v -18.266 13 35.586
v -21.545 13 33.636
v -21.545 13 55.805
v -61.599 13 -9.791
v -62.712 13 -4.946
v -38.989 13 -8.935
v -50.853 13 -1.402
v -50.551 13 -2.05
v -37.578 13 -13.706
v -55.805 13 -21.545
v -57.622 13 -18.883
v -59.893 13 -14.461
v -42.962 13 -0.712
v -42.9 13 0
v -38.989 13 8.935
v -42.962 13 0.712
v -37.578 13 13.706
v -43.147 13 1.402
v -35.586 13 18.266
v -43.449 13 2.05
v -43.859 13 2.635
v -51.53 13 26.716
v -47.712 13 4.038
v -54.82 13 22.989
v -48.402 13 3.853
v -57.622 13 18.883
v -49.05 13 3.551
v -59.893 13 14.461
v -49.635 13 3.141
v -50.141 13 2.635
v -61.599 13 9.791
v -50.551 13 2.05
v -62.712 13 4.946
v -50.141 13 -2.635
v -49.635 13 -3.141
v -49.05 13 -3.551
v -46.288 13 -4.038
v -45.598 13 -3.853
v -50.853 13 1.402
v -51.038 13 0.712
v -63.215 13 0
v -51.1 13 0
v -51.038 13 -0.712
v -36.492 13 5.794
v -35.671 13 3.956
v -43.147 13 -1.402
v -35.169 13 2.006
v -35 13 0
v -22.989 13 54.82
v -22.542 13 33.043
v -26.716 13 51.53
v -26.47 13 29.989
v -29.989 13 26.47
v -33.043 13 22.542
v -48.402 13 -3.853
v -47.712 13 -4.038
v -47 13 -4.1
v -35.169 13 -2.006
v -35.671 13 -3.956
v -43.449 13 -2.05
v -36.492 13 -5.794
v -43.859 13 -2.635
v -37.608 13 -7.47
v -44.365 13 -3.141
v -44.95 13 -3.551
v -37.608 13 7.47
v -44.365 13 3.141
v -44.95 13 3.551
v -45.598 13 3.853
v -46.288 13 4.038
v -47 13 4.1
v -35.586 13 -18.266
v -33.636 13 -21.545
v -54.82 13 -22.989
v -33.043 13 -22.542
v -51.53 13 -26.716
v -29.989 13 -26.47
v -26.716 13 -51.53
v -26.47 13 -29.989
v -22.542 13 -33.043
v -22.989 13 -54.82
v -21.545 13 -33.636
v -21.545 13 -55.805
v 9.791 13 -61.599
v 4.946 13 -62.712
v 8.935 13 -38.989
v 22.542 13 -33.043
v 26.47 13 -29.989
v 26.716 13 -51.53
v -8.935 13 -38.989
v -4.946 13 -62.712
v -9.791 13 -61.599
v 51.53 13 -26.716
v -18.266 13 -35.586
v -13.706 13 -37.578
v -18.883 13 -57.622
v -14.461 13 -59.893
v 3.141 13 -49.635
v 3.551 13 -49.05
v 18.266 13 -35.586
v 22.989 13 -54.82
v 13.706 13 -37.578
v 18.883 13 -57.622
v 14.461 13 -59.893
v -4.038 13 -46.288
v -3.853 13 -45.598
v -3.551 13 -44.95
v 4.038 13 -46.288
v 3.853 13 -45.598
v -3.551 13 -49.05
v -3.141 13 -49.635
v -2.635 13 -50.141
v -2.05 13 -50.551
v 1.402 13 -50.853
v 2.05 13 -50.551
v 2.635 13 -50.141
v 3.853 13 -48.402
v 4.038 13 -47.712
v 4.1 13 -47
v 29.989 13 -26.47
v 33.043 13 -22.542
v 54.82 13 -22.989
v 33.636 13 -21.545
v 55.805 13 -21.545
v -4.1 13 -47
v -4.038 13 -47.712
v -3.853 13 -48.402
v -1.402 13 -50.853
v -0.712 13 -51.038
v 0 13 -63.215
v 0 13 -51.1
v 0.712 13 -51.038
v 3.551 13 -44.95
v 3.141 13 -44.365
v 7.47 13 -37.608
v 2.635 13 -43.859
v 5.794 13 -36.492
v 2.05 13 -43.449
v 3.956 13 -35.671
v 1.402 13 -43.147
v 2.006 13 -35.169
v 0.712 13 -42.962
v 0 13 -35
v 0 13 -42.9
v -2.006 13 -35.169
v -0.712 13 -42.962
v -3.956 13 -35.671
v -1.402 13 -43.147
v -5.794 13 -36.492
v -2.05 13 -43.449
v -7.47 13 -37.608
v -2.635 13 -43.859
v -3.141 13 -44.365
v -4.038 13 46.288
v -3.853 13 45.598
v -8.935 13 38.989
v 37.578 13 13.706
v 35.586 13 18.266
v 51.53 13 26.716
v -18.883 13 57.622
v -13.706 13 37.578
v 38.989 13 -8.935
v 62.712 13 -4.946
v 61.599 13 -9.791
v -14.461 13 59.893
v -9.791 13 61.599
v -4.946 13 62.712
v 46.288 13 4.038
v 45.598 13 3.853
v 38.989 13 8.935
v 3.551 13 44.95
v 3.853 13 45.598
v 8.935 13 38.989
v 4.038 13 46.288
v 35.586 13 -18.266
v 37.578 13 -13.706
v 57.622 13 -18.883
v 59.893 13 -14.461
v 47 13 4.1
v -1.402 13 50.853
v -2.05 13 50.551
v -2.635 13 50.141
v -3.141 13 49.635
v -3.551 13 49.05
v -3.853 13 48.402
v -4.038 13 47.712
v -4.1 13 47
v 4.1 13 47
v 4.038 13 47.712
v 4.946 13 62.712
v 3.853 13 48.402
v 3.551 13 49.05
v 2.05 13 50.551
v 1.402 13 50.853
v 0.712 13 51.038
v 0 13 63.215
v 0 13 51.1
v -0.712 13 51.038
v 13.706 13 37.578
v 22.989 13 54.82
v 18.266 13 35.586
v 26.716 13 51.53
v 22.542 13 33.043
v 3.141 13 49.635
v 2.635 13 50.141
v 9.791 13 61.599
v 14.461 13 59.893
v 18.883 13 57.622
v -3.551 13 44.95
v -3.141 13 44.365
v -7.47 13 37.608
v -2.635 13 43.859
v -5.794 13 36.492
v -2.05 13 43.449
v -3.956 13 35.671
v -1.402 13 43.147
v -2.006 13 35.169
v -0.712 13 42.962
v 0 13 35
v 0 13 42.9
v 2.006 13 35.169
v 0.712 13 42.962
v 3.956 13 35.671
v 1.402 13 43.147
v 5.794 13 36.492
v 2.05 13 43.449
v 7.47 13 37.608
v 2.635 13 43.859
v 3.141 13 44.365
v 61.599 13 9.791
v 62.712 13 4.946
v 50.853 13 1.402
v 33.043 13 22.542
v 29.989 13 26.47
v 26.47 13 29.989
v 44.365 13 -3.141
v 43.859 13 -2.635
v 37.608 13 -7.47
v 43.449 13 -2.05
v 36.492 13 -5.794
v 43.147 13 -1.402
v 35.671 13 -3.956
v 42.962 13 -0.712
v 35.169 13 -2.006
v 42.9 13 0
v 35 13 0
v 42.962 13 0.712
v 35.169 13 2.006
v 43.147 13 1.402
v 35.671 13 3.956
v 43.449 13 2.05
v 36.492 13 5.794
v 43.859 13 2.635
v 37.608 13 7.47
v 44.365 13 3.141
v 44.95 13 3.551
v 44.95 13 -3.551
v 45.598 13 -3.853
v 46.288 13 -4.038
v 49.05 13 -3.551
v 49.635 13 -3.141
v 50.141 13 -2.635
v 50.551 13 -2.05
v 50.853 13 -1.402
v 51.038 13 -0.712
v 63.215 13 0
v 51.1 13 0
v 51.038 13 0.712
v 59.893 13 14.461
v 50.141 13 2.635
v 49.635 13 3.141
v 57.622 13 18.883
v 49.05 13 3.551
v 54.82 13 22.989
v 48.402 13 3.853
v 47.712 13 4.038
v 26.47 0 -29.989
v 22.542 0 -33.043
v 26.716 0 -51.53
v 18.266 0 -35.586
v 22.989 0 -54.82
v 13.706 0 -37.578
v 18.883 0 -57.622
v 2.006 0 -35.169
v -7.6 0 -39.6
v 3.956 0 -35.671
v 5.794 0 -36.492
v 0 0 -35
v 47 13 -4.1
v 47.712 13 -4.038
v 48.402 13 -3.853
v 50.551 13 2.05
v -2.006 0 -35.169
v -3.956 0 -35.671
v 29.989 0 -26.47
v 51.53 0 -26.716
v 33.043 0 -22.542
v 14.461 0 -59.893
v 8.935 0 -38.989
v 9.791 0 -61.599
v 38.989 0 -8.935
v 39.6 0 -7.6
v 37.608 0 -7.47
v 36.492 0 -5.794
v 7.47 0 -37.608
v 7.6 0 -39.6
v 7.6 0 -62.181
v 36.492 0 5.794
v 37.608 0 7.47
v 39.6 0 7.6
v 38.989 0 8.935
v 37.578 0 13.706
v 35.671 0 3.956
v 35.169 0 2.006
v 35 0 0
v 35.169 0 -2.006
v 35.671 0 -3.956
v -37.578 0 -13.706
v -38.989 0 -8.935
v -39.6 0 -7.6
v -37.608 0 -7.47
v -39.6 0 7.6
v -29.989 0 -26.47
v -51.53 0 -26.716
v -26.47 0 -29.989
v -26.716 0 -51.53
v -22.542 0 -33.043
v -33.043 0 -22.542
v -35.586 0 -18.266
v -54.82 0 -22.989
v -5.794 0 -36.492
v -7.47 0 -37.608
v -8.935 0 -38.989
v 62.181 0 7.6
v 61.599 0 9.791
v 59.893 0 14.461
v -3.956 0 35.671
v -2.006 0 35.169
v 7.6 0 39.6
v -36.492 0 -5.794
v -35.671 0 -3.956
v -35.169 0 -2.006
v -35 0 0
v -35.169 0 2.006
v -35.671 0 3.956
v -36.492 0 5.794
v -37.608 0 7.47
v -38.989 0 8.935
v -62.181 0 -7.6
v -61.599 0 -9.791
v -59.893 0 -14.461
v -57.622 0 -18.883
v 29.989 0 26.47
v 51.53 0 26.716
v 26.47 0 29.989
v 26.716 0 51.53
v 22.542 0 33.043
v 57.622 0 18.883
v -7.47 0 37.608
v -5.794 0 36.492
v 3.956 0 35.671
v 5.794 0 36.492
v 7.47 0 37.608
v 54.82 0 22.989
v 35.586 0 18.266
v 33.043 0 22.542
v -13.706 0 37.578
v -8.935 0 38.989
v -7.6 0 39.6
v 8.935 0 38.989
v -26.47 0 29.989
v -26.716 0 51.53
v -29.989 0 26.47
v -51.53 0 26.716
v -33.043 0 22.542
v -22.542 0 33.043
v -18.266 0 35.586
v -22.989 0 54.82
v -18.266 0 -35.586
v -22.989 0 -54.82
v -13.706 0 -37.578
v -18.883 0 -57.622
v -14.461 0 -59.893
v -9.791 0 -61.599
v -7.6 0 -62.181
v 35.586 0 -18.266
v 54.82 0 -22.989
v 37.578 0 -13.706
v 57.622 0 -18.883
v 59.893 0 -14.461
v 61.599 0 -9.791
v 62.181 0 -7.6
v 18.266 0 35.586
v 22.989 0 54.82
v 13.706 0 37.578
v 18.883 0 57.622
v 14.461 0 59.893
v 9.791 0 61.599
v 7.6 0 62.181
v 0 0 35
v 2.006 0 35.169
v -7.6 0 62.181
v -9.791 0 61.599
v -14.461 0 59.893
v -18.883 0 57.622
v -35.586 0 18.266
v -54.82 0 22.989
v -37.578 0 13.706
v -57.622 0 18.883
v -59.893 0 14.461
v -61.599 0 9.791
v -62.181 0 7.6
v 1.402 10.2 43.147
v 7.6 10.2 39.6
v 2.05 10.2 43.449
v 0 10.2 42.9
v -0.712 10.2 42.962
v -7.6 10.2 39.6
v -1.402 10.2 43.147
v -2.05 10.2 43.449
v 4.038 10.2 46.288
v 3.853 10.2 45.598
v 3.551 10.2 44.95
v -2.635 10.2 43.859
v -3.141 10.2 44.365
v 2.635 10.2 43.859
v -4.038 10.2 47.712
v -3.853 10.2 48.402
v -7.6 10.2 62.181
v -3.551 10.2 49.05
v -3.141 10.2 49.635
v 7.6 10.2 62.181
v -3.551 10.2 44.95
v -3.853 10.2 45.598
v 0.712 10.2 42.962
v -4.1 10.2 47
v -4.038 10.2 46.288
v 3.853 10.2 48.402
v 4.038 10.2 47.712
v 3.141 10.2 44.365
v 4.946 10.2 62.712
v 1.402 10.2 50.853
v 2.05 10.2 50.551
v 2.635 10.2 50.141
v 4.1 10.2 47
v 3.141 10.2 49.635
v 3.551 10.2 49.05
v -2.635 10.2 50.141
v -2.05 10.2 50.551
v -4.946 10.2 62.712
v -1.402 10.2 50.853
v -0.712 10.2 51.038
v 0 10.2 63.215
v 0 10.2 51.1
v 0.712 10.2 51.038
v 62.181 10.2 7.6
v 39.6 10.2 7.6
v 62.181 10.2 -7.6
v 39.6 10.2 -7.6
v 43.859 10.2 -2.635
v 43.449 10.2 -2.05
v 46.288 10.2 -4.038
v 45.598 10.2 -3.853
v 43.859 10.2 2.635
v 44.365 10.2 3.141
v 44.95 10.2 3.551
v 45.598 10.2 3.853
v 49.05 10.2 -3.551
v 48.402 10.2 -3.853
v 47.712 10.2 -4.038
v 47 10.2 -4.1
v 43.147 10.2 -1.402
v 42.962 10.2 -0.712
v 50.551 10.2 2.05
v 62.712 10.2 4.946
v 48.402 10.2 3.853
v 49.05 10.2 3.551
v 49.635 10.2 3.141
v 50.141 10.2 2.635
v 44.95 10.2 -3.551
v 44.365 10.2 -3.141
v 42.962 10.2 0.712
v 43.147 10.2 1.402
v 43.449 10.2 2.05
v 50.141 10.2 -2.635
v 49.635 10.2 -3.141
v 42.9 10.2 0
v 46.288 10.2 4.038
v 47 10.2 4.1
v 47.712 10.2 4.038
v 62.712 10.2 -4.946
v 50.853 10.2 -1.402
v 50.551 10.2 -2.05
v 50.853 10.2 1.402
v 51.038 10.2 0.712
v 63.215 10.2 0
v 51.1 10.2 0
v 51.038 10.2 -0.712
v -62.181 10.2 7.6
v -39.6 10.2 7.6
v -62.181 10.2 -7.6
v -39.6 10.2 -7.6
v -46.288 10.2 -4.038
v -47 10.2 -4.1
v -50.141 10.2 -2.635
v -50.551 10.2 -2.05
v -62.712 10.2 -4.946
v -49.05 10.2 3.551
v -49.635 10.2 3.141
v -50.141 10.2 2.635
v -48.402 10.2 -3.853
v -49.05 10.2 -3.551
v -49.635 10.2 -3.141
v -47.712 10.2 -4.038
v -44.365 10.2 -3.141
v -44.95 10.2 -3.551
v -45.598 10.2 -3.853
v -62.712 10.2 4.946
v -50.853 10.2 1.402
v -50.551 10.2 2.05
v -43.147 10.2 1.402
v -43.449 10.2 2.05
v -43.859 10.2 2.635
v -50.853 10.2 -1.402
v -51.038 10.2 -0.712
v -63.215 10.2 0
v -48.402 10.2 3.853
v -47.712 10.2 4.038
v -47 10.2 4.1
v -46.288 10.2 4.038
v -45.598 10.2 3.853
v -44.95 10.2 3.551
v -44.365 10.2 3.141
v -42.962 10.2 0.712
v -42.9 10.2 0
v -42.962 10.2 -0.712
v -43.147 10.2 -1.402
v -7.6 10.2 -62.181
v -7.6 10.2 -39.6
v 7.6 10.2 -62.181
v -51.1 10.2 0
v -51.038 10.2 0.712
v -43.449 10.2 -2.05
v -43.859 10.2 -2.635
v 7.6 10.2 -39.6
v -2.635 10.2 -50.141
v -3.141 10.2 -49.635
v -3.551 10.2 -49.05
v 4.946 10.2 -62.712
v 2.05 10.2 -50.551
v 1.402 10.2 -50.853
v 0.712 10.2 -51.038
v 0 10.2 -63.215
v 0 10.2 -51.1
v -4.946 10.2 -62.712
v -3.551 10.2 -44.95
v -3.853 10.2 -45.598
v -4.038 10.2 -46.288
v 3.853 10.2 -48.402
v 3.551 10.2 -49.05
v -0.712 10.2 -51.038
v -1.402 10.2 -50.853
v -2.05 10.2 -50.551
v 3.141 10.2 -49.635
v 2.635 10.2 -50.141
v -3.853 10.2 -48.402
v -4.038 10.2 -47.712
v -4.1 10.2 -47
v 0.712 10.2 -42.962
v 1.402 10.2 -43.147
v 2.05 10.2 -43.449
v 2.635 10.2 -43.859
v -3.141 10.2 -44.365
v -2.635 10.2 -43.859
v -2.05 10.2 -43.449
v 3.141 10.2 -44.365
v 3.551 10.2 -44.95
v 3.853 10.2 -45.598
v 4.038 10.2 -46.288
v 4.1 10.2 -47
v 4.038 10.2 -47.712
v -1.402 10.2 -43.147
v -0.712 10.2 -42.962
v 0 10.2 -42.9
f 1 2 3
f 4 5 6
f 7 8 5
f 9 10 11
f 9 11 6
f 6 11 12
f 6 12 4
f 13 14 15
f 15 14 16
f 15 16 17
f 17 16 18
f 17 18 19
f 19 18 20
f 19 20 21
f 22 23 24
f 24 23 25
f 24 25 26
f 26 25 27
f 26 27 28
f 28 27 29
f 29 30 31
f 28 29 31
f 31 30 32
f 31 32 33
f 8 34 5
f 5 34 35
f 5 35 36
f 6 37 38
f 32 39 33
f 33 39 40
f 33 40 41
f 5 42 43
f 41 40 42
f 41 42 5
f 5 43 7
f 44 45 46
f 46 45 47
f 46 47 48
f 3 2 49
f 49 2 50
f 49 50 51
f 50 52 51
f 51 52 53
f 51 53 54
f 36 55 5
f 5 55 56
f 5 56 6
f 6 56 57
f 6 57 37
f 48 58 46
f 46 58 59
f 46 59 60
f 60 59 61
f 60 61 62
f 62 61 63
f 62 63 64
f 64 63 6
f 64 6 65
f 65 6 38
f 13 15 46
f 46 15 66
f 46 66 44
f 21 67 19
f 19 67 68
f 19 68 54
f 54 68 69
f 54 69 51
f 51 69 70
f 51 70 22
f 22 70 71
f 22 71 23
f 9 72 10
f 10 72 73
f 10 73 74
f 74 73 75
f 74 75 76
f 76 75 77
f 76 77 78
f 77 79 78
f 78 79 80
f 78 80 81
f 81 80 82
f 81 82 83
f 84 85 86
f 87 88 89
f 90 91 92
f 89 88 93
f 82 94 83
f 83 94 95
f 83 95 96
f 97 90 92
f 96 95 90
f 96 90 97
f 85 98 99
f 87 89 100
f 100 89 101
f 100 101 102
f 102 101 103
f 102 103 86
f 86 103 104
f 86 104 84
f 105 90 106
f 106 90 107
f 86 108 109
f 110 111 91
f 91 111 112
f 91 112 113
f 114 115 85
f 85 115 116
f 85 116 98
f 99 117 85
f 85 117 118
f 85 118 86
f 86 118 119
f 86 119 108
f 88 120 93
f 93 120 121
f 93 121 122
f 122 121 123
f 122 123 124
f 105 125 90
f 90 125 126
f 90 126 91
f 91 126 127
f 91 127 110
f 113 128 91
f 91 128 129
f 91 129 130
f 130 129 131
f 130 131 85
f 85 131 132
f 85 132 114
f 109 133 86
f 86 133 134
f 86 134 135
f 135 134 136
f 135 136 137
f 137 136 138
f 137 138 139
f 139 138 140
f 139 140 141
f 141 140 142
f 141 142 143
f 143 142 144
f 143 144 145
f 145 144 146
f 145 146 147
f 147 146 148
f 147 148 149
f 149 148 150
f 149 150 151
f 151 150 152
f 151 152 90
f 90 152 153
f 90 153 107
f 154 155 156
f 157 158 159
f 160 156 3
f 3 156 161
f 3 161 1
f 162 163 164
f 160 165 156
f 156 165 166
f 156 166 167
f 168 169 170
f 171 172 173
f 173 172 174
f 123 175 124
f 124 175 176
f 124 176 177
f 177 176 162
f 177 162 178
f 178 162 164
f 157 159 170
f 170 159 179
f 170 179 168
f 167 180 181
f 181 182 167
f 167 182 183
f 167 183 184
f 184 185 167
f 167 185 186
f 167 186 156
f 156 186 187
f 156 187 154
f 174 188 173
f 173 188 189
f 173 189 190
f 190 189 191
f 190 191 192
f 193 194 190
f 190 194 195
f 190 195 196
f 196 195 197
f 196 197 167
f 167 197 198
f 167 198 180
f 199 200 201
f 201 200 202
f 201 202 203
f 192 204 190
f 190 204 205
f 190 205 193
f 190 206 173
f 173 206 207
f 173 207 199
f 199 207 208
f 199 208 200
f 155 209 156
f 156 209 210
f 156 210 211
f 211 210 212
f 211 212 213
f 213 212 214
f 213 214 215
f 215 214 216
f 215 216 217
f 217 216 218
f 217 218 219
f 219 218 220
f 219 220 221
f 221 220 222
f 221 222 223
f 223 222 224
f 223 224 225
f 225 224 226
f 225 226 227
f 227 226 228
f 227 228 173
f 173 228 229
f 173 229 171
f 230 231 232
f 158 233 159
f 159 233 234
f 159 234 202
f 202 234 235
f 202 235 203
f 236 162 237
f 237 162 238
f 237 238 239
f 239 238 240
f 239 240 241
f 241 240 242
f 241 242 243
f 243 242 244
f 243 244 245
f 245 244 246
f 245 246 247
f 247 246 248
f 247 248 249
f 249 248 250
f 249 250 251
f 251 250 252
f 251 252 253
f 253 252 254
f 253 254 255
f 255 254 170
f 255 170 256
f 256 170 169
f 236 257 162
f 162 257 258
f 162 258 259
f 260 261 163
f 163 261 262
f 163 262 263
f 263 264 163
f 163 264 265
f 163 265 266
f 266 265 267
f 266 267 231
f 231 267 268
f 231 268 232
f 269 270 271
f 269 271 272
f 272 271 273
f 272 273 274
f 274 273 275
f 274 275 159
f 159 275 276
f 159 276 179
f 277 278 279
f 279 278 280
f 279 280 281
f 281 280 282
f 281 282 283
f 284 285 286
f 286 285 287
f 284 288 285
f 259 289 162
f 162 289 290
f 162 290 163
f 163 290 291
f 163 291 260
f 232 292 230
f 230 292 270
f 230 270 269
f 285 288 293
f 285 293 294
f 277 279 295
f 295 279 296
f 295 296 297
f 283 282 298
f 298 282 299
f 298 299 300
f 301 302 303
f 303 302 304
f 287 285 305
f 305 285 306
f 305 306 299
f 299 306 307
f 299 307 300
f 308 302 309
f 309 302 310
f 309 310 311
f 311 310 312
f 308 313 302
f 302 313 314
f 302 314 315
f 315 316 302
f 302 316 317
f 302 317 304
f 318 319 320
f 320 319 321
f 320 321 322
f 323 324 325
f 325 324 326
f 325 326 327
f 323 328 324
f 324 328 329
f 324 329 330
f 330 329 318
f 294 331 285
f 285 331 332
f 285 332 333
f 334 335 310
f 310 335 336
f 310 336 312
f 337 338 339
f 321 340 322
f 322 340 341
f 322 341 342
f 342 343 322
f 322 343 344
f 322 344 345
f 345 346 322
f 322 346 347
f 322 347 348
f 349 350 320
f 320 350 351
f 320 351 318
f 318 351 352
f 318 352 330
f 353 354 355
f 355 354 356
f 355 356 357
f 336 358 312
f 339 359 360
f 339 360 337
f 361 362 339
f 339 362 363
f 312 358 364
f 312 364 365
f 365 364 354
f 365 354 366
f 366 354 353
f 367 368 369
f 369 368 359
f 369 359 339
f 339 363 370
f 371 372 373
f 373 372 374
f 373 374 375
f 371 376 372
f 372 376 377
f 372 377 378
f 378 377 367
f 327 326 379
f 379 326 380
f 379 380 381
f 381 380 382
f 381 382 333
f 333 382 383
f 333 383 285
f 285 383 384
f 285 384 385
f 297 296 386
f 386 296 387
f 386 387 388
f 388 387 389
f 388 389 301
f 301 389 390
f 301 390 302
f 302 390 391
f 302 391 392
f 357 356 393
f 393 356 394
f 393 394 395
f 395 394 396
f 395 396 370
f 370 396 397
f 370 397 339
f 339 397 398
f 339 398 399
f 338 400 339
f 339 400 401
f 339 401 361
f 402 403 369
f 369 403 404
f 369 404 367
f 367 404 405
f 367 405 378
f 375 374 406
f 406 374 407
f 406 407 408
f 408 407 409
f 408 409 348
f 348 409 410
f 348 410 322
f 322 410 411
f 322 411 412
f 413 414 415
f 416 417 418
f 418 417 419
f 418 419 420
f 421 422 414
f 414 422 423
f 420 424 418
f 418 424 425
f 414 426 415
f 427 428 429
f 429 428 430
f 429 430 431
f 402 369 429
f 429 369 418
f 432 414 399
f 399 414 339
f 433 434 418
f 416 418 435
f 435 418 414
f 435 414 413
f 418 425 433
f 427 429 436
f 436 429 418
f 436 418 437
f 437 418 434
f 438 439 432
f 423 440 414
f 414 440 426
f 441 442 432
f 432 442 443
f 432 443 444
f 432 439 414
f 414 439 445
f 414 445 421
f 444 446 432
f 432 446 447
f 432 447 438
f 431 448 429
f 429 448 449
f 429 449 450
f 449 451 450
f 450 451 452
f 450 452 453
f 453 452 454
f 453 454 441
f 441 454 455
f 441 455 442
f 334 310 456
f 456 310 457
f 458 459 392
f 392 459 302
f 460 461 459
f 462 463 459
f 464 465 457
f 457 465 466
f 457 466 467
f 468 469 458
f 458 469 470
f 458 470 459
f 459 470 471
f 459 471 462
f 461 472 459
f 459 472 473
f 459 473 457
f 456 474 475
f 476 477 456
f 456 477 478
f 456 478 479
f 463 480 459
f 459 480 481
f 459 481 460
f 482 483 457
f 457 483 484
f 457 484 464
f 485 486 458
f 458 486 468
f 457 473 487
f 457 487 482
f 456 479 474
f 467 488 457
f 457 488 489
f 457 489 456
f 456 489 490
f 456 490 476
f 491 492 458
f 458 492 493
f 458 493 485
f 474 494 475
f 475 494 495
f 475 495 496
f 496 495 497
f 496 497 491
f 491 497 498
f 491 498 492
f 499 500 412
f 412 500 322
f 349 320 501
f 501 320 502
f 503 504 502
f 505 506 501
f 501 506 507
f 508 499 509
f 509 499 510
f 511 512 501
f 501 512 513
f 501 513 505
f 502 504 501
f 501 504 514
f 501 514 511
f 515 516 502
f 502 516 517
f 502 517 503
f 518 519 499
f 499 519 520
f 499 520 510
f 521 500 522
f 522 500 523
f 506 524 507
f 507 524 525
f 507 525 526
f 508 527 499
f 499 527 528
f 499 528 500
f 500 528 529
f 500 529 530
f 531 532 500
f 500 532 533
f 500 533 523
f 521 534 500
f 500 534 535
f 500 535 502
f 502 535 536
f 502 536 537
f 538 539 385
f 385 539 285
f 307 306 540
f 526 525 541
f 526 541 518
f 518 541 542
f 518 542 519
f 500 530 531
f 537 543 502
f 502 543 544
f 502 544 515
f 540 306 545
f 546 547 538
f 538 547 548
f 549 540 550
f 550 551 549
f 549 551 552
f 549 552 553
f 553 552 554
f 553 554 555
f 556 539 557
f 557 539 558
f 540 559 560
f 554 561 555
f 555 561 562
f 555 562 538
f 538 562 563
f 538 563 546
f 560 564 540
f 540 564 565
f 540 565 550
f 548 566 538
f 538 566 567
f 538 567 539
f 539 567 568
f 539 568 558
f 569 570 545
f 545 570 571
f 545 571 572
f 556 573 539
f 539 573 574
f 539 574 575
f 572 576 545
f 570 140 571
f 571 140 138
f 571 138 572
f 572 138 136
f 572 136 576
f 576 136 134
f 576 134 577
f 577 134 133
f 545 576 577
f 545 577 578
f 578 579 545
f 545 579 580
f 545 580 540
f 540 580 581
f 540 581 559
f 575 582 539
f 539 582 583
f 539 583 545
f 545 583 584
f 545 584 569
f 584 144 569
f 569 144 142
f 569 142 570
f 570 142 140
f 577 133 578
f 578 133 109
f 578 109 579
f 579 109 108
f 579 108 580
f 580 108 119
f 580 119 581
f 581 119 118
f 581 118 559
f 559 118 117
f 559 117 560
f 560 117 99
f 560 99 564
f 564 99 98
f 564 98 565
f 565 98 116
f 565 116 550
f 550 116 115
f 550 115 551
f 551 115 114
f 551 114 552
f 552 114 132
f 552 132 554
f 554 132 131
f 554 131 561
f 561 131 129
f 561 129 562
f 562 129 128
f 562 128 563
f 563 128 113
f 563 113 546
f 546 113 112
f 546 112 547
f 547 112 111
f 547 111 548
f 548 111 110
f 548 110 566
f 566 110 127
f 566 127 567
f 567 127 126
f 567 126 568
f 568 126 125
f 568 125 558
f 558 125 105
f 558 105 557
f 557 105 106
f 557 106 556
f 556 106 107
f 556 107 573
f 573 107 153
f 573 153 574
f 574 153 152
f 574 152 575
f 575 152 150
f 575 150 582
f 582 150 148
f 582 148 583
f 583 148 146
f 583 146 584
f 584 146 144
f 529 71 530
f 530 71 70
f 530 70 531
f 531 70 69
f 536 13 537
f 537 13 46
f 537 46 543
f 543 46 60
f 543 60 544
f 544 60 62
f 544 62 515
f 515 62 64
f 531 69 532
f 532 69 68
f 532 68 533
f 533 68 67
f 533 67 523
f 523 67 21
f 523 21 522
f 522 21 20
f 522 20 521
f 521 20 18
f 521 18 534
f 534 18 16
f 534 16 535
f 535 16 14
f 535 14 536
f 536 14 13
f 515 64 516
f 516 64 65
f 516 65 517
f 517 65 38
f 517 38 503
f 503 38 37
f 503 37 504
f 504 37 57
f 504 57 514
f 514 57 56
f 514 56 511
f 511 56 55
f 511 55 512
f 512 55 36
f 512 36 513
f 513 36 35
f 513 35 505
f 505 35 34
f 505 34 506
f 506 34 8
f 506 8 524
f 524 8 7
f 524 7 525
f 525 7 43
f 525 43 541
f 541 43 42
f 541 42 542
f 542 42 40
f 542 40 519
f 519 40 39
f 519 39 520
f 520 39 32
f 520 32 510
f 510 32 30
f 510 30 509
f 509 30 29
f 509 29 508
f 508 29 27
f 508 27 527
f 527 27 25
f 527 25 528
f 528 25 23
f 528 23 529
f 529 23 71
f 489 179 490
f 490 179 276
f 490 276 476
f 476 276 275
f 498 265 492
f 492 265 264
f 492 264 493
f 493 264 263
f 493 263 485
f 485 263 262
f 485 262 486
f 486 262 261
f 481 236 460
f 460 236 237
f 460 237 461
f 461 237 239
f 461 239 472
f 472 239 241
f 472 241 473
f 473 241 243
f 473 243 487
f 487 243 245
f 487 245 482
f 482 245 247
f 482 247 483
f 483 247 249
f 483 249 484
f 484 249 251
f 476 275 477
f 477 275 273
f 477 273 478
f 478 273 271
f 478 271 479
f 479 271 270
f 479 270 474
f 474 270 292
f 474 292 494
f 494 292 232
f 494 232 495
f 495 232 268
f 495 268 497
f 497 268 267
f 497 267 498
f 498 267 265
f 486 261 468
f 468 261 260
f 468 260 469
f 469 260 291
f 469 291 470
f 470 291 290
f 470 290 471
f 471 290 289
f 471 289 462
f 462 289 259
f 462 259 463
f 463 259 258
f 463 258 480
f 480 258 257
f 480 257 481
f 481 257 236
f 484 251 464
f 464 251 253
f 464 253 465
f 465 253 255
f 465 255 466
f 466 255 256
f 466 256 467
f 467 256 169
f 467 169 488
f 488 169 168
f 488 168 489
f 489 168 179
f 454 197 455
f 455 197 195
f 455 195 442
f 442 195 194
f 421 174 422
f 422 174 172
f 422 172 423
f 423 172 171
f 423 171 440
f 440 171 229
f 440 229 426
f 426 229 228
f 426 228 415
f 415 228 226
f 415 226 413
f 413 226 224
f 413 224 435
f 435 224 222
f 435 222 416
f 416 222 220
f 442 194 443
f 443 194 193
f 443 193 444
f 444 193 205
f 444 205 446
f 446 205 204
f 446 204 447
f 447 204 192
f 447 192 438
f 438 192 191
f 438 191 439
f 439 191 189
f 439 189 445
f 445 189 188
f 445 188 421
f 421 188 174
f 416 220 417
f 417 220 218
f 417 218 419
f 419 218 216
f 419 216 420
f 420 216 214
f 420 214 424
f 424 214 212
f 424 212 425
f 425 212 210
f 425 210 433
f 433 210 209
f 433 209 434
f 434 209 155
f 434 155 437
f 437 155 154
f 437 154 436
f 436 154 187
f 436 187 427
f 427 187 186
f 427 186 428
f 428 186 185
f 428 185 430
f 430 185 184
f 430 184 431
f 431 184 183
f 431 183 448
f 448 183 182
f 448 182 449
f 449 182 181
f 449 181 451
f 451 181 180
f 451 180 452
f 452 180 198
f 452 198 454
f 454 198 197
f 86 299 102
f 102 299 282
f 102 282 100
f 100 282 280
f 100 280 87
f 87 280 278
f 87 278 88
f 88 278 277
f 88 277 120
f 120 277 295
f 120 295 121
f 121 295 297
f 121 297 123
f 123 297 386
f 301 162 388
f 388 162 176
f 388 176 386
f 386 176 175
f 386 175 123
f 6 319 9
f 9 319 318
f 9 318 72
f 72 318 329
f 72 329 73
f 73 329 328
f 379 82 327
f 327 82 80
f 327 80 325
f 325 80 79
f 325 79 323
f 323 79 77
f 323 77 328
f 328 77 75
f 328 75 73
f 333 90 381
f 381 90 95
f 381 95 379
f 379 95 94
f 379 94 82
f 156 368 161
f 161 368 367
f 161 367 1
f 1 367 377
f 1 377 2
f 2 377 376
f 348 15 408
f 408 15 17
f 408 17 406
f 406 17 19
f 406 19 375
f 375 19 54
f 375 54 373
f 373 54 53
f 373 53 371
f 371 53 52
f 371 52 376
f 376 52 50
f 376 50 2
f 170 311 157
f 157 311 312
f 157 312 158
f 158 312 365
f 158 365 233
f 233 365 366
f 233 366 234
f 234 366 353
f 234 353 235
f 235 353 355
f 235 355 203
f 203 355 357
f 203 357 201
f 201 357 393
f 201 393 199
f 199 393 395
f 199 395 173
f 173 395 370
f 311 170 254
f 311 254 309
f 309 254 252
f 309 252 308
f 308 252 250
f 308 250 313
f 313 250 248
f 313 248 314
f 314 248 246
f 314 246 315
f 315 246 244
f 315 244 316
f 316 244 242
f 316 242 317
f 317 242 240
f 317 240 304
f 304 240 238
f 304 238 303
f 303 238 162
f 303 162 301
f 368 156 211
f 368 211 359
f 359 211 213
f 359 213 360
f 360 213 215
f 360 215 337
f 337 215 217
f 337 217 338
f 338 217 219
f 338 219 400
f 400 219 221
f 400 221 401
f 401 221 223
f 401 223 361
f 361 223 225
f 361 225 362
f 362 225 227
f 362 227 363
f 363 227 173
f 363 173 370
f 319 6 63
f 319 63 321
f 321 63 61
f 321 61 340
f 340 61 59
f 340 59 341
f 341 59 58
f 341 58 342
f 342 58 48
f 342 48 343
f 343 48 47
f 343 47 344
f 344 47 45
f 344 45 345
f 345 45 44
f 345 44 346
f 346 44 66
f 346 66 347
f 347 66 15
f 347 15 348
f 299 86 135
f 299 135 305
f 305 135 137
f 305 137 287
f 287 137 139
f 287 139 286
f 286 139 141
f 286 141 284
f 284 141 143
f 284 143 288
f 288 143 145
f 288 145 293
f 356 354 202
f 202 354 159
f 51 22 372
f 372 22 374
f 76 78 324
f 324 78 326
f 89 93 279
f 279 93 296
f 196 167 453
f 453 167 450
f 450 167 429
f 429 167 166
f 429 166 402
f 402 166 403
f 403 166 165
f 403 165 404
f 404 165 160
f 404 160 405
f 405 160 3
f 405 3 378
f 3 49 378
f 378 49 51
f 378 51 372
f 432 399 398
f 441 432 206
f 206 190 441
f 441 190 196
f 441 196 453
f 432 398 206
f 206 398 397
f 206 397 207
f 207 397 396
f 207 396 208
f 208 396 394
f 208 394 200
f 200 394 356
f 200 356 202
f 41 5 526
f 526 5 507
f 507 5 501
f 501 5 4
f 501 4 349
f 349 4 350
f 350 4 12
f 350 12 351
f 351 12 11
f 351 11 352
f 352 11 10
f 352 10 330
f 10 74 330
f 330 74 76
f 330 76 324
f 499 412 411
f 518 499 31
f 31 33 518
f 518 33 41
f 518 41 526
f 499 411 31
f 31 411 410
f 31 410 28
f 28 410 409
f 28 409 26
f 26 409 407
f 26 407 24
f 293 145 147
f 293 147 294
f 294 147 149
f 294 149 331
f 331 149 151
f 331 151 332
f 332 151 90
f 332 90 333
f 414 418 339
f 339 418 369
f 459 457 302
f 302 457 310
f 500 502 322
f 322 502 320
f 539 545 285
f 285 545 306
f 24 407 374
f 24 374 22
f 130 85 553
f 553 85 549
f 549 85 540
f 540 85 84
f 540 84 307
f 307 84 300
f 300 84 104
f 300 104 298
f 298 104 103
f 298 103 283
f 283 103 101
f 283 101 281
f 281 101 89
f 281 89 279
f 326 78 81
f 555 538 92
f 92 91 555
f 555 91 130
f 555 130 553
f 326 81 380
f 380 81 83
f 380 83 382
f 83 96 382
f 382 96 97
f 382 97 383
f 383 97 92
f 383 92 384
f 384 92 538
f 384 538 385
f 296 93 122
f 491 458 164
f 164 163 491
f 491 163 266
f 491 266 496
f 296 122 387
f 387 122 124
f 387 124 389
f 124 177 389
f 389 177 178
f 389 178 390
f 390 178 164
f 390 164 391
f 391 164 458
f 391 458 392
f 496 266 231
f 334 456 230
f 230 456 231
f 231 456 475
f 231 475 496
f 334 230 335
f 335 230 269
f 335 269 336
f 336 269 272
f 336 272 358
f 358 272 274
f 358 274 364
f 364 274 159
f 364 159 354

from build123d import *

# Parameters (mm, degrees)
SKETCH1_R           = 65
SKETCH1_R_2         = 40
BOSS_EXTRUDE1_DEPTH = 13
SKETCH2_R           = 4.1
CUT_EXTRUDE1_DEPTH  = 93.838569571
SKETCH8_R           = 12
SKETCH8_R_2         = 4.1
BOSS_EXTRUDE4_DEPTH = 13
SKETCH3_W           = 15.2
SKETCH3_H           = 40
SKETCH3_W_2         = 40
SKETCH3_H_2         = 15.2
CUT_EXTRUDE2_DEPTH  = 10.2
BOSS_EXTRUDE2_DEPTH = 13
FILLET1_R           = 30
BOSS_EXTRUDE3_START = -13
BOSS_EXTRUDE3_DEPTH = 13
CUT_EXTRUDE3_DEPTH  = 93.838569571
FILLET2_R           = 30
SKETCH7_OUTSIDE_W   = 168.862
SKETCH7_OUTSIDE_H   = 168.862
CUT_EXTRUDE4_DEPTH  = 93.838569571
FILLET3_R           = 40


with BuildPart() as part:
    # Sketch1 → Boss-Extrude1 (new body)
    with BuildSketch(Plane(origin=(0, 0, 0), x_dir=(1, 0, 0), z_dir=(0, 1, 0))):
        with Locations(Location((0, 0, 0), (0, 0, 90))):
            Circle(SKETCH1_R)
        with Locations(Location((0, 0, 0), (0, 0, 90))):
            Circle(SKETCH1_R_2, mode=Mode.SUBTRACT)
    extrude(amount=BOSS_EXTRUDE1_DEPTH)

    # Sketch2 → Cut-Extrude1 (cut, through all)
    with BuildSketch(Plane(origin=(0, 13, 0), x_dir=(1, 0, 0), z_dir=(0, 1, 0))):
        with Locations(Location((0, 47, 0), (0, 0, 270))):
            Circle(SKETCH2_R)
        with Locations(Location((47, 0, 0), (0, 0, 270))):
            Circle(SKETCH2_R)
        with Locations(Location((0, -47, 0), (0, 0, 270))):
            Circle(SKETCH2_R)
        with Locations(Location((-47, 0, 0), (0, 0, 270))):
            Circle(SKETCH2_R)
    extrude(amount=-CUT_EXTRUDE1_DEPTH, mode=Mode.SUBTRACT)

    # Sketch8 → Boss-Extrude4 (add)
    # profile 1 of 4: a face of its own
    with BuildSketch(Plane(origin=(0, 13, 0), x_dir=(1, 0, 0), z_dir=(0, 1, 0))):
        with Locations((47, 0)):
            Circle(SKETCH8_R)
        with Locations(Location((47, 0, 0), (0, 0, 270))):
            Circle(SKETCH8_R_2, mode=Mode.SUBTRACT)
    # profile 2 of 4: a face of its own
    with BuildSketch(Plane(origin=(0, 13, 0), x_dir=(1, 0, 0), z_dir=(0, 1, 0))):
        with Locations((0, -47)):
            Circle(SKETCH8_R)
        with Locations(Location((0, -47, 0), (0, 0, 270))):
            Circle(SKETCH8_R_2, mode=Mode.SUBTRACT)
    # profile 3 of 4: a face of its own
    with BuildSketch(Plane(origin=(0, 13, 0), x_dir=(1, 0, 0), z_dir=(0, 1, 0))):
        with Locations((-47, 0)):
            Circle(SKETCH8_R)
        with Locations(Location((-47, 0, 0), (0, 0, 270))):
            Circle(SKETCH8_R_2, mode=Mode.SUBTRACT)
    # profile 4 of 4: a face of its own
    with BuildSketch(Plane(origin=(0, 13, 0), x_dir=(1, 0, 0), z_dir=(0, 1, 0))):
        with Locations((0, 47)):
            Circle(SKETCH8_R)
        with Locations(Location((0, 47, 0), (0, 0, 270))):
            Circle(SKETCH8_R_2, mode=Mode.SUBTRACT)
    extrude(amount=-BOSS_EXTRUDE4_DEPTH)

    # Sketch3 → Cut-Extrude2 (cut)
    with BuildSketch(Plane.XZ):
        with Locations((0, 59.6)):
            Rectangle(SKETCH3_W, SKETCH3_H)
        with Locations((59.6, 0)):
            Rectangle(SKETCH3_W_2, SKETCH3_H_2)
        with Locations((0, -59.6)):
            Rectangle(SKETCH3_W, SKETCH3_H)
        with Locations((-59.6, 0)):
            Rectangle(SKETCH3_W_2, SKETCH3_H_2)
    extrude(amount=-CUT_EXTRUDE2_DEPTH, mode=Mode.SUBTRACT)

    # Sketch4 → Boss-Extrude2 (add)
    with BuildSketch(Plane(origin=(0, 13, 0), x_dir=(1, 0, 0), z_dir=(0, 1, 0))):
        Polygon((-33.587572106, -58.336309448), (-58.336309448, -33.587572106), (-56.639196695, -31.890459353), (-31.890459353, -56.639196695), align=None)
    extrude(amount=-BOSS_EXTRUDE2_DEPTH)

    # Fillet1
    # the kernel refuses this fillet: 30 mm, written as the material it adds along each edge
    with BuildSketch(Plane(origin=(-56.639196695, 13, 31.890459353), x_dir=(-0.43072276652908487, 0, -0.9024842926021104), z_dir=(0, -1, 0))) as fillet1_piece_1:
        with BuildLine():
            CenterArc((10.793469922, -29.931661034), FILLET1_R, 93.868064257, 18.866970785)
            Line((-0.800632502, -2.262602703), (-1.032514551, -1.709221536))
            ThreePointArc((-1.032514551, -1.709221536), (-0.965948102, -0.931149887), (-0.565631851, 0.200151465))
            Line((-0.565631851, 0.200151465), (0.040475512, 0.598633221))
            ThreePointArc((0.040475512, 0.598633221), (4.384847156, 0.451932241), (8.729218799, 0.598633221))
            Line((8.729218799, 0.598633221), (8.769694312, 0))
        make_face()
    extrude(amount=13)
    with BuildSketch(Plane(origin=(-31.890459353, 13, 56.639196695), x_dir=(0.9024842926021067, 0, 0.4307227665290924), z_dir=(0, -1, 0))) as fillet1_piece_2:
        with BuildLine():
            CenterArc((10.793469922, 29.931661034), FILLET1_R, 247.264964958, 18.866970785)
            Line((-0.800632502, 2.262602703), (-1.032514551, 1.709221536))
            ThreePointArc((-1.032514551, 1.709221536), (-0.965948102, 0.931149887), (-0.565631851, -0.200151465))
            Line((-0.565631851, -0.200151465), (0.040475512, -0.598633221))
            ThreePointArc((0.040475512, -0.598633221), (4.384847156, -0.451932241), (8.729218799, -0.598633221))
            Line((8.729218799, -0.598633221), (8.769694312, 0))
        make_face()
    extrude(amount=13)

    # Sketch5 → Boss-Extrude3 (add)
    with BuildSketch(Plane(origin=(0, 13, 0), x_dir=(1, 0, 0), z_dir=(0, 1, 0)).offset(BOSS_EXTRUDE3_START)):
        with BuildLine():
            Line((-31.522820305, 59.213121857), (-29.981916204, 57.672217755))
            ThreePointArc((-29.981916204, 57.672217755), (-34.692861997, 54.825243953), (-39.146042554, 51.589899608))
            Line((-39.146042554, 51.589899608), (-31.522820305, 59.213121857))
        make_face()
        with BuildLine():
            Line((-59.213121857, 31.522820305), (-57.672217755, 29.981916204))
            ThreePointArc((-57.672217755, 29.981916204), (-55.348212032, 34.081892918), (-52.733240933, 38.002701228))
            Line((-52.733240933, 38.002701228), (-59.213121857, 31.522820305))
        make_face()
    extrude(amount=BOSS_EXTRUDE3_DEPTH)

    # Sketch6 → Cut-Extrude3 (cut, through all)
    with BuildSketch(Plane(origin=(0, 13, 0), x_dir=(1, 0, 0), z_dir=(0, 1, 0))):
        Polygon((-31.522820305, 59.213121857), (-59.213121857, 31.522820305), (-61.494356901, 33.80405535), (-33.80405535, 61.494356901), align=None)
    extrude(amount=-CUT_EXTRUDE3_DEPTH, mode=Mode.SUBTRACT)

    # Fillet2
    # the kernel refuses this fillet: 30 mm, written as the material it adds along each edge
    with BuildSketch(Plane(origin=(-57.672217755, 0, -29.981916204), x_dir=(-0.4036365927453583, 0, 0.9149193959015831), z_dir=(0, 1, 0))) as fillet2_piece_1:
        with BuildLine():
            CenterArc((10.221339545, -29.938721136), FILLET2_R, 93.662741819, 17.866287174)
            Line((-0.787837769, -2.031768331), (-1.008021315, -1.473629275))
            ThreePointArc((-1.008021315, -1.473629275), (-0.953334813, -0.798965243), (-0.559415929, 0.216918922))
            Line((-0.559415929, 0.216918922), (0.038330023, 0.598774423))
            ThreePointArc((0.038330023, 0.598774423), (4.15241919, 0.467229129), (8.266508357, 0.598774423))
            Line((8.266508357, 0.598774423), (8.304838381, 0))
        make_face()
    extrude(amount=13)
    with BuildSketch(Plane(origin=(-29.981916204, 0, -57.672217755), x_dir=(-0.7071067811865491, 0, -0.7071067811865459), z_dir=(0, 1, 0))) as fillet2_piece_2:
        with BuildLine():
            CenterArc((24.218325876, -20.353758796), FILLET2_R, 137.276688213, 17.866287174)
            Line((-3.002460986, -7.743098124), (-3.546876723, -7.49088491))
            ThreePointArc((-3.546876723, -7.49088491), (-1.936856188, -3.702630997), (-0.572130762, 0.180738462))
            Line((-0.572130762, 0.180738462), (0, 0.6))
            ThreePointArc((0, 0.6), (1.089583739, 0.6), (1.738384311, 0.407075176))
            Line((1.738384311, 0.407075176), (2.179167479, 0))
        make_face()
    extrude(amount=13)

    # Sketch7 outside → Cut-Extrude4 (cut, through all)
    with BuildSketch(Plane(origin=(0, 13, 0), x_dir=(1, 0, 0), z_dir=(0, 1, 0))):
        Rectangle(SKETCH7_OUTSIDE_W, SKETCH7_OUTSIDE_H)
        Polygon((63.245553203, -15), (15, -63.245553203), (-15, -63.245553203), (-63.245553203, -15), (-63.245553203, 15), (-15, 63.245553203), (15, 63.245553203), (63.245553203, 15), align=None, mode=Mode.SUBTRACT)
    extrude(amount=-CUT_EXTRUDE4_DEPTH, mode=Mode.SUBTRACT)

    # Fillet3
    # the kernel refuses this fillet: 40 mm, written as the material it takes off along each edge
    with BuildSketch(Plane(origin=(15, 54.421356237, 63.245553203), x_dir=(-1, 0, 0), z_dir=(0, -1, 0)), Plane(origin=(-15, 54.421356237, 63.245553203), x_dir=(-0.7071067811865475, 0, -0.7071067811865477), z_dir=(0, -1, 0)), Plane(origin=(-63.245553203, 54.421356237, 15), x_dir=(0, 0, -1), z_dir=(0, -1, 0)), Plane(origin=(-63.245553203, 54.421356237, -15), x_dir=(0.7071067811865477, 0, -0.7071067811865475), z_dir=(0, -1, 0)), Plane(origin=(63.245553203, 54.421356237, 15), x_dir=(-0.7071067811865477, 0, 0.7071067811865475), z_dir=(0, -1, 0)), Plane(origin=(63.245553203, 54.421356237, -15), x_dir=(0, 0, 1), z_dir=(0, -1, 0))) as fillet3_piece_1:
        with BuildLine():
            CenterArc((FILLET3_R * 0.414213562373, FILLET3_R), FILLET3_R, 225, 45)
            Line((-FILLET3_R * 0.292893218813, FILLET3_R * 0.292893218813), (0, 0))
            Line((0, 0), (FILLET3_R * 0.414213562373, 0))
        make_face()
    extrude(amount=95.842712475, mode=Mode.SUBTRACT)
    with BuildSketch(Plane(origin=(-15, 54.421356237, -63.245553203), x_dir=(-0.7071067811865476, 0, 0.7071067811865476), z_dir=(0, -1, 0)), Plane(origin=(15, 54.421356237, -63.245553203), x_dir=(-1, 0, 0), z_dir=(0, -1, 0))) as fillet3_piece_2:
        with BuildLine():
            CenterArc((FILLET3_R * 0.414213562373, -FILLET3_R), FILLET3_R, 90, 45)
            Line((-FILLET3_R * 0.292893218813, -FILLET3_R * 0.292893218813), (0, 0))
            Line((0, 0), (FILLET3_R * 0.414213562373, 0))
        make_face()
    extrude(amount=95.842712475, mode=Mode.SUBTRACT)


solid = part.part
